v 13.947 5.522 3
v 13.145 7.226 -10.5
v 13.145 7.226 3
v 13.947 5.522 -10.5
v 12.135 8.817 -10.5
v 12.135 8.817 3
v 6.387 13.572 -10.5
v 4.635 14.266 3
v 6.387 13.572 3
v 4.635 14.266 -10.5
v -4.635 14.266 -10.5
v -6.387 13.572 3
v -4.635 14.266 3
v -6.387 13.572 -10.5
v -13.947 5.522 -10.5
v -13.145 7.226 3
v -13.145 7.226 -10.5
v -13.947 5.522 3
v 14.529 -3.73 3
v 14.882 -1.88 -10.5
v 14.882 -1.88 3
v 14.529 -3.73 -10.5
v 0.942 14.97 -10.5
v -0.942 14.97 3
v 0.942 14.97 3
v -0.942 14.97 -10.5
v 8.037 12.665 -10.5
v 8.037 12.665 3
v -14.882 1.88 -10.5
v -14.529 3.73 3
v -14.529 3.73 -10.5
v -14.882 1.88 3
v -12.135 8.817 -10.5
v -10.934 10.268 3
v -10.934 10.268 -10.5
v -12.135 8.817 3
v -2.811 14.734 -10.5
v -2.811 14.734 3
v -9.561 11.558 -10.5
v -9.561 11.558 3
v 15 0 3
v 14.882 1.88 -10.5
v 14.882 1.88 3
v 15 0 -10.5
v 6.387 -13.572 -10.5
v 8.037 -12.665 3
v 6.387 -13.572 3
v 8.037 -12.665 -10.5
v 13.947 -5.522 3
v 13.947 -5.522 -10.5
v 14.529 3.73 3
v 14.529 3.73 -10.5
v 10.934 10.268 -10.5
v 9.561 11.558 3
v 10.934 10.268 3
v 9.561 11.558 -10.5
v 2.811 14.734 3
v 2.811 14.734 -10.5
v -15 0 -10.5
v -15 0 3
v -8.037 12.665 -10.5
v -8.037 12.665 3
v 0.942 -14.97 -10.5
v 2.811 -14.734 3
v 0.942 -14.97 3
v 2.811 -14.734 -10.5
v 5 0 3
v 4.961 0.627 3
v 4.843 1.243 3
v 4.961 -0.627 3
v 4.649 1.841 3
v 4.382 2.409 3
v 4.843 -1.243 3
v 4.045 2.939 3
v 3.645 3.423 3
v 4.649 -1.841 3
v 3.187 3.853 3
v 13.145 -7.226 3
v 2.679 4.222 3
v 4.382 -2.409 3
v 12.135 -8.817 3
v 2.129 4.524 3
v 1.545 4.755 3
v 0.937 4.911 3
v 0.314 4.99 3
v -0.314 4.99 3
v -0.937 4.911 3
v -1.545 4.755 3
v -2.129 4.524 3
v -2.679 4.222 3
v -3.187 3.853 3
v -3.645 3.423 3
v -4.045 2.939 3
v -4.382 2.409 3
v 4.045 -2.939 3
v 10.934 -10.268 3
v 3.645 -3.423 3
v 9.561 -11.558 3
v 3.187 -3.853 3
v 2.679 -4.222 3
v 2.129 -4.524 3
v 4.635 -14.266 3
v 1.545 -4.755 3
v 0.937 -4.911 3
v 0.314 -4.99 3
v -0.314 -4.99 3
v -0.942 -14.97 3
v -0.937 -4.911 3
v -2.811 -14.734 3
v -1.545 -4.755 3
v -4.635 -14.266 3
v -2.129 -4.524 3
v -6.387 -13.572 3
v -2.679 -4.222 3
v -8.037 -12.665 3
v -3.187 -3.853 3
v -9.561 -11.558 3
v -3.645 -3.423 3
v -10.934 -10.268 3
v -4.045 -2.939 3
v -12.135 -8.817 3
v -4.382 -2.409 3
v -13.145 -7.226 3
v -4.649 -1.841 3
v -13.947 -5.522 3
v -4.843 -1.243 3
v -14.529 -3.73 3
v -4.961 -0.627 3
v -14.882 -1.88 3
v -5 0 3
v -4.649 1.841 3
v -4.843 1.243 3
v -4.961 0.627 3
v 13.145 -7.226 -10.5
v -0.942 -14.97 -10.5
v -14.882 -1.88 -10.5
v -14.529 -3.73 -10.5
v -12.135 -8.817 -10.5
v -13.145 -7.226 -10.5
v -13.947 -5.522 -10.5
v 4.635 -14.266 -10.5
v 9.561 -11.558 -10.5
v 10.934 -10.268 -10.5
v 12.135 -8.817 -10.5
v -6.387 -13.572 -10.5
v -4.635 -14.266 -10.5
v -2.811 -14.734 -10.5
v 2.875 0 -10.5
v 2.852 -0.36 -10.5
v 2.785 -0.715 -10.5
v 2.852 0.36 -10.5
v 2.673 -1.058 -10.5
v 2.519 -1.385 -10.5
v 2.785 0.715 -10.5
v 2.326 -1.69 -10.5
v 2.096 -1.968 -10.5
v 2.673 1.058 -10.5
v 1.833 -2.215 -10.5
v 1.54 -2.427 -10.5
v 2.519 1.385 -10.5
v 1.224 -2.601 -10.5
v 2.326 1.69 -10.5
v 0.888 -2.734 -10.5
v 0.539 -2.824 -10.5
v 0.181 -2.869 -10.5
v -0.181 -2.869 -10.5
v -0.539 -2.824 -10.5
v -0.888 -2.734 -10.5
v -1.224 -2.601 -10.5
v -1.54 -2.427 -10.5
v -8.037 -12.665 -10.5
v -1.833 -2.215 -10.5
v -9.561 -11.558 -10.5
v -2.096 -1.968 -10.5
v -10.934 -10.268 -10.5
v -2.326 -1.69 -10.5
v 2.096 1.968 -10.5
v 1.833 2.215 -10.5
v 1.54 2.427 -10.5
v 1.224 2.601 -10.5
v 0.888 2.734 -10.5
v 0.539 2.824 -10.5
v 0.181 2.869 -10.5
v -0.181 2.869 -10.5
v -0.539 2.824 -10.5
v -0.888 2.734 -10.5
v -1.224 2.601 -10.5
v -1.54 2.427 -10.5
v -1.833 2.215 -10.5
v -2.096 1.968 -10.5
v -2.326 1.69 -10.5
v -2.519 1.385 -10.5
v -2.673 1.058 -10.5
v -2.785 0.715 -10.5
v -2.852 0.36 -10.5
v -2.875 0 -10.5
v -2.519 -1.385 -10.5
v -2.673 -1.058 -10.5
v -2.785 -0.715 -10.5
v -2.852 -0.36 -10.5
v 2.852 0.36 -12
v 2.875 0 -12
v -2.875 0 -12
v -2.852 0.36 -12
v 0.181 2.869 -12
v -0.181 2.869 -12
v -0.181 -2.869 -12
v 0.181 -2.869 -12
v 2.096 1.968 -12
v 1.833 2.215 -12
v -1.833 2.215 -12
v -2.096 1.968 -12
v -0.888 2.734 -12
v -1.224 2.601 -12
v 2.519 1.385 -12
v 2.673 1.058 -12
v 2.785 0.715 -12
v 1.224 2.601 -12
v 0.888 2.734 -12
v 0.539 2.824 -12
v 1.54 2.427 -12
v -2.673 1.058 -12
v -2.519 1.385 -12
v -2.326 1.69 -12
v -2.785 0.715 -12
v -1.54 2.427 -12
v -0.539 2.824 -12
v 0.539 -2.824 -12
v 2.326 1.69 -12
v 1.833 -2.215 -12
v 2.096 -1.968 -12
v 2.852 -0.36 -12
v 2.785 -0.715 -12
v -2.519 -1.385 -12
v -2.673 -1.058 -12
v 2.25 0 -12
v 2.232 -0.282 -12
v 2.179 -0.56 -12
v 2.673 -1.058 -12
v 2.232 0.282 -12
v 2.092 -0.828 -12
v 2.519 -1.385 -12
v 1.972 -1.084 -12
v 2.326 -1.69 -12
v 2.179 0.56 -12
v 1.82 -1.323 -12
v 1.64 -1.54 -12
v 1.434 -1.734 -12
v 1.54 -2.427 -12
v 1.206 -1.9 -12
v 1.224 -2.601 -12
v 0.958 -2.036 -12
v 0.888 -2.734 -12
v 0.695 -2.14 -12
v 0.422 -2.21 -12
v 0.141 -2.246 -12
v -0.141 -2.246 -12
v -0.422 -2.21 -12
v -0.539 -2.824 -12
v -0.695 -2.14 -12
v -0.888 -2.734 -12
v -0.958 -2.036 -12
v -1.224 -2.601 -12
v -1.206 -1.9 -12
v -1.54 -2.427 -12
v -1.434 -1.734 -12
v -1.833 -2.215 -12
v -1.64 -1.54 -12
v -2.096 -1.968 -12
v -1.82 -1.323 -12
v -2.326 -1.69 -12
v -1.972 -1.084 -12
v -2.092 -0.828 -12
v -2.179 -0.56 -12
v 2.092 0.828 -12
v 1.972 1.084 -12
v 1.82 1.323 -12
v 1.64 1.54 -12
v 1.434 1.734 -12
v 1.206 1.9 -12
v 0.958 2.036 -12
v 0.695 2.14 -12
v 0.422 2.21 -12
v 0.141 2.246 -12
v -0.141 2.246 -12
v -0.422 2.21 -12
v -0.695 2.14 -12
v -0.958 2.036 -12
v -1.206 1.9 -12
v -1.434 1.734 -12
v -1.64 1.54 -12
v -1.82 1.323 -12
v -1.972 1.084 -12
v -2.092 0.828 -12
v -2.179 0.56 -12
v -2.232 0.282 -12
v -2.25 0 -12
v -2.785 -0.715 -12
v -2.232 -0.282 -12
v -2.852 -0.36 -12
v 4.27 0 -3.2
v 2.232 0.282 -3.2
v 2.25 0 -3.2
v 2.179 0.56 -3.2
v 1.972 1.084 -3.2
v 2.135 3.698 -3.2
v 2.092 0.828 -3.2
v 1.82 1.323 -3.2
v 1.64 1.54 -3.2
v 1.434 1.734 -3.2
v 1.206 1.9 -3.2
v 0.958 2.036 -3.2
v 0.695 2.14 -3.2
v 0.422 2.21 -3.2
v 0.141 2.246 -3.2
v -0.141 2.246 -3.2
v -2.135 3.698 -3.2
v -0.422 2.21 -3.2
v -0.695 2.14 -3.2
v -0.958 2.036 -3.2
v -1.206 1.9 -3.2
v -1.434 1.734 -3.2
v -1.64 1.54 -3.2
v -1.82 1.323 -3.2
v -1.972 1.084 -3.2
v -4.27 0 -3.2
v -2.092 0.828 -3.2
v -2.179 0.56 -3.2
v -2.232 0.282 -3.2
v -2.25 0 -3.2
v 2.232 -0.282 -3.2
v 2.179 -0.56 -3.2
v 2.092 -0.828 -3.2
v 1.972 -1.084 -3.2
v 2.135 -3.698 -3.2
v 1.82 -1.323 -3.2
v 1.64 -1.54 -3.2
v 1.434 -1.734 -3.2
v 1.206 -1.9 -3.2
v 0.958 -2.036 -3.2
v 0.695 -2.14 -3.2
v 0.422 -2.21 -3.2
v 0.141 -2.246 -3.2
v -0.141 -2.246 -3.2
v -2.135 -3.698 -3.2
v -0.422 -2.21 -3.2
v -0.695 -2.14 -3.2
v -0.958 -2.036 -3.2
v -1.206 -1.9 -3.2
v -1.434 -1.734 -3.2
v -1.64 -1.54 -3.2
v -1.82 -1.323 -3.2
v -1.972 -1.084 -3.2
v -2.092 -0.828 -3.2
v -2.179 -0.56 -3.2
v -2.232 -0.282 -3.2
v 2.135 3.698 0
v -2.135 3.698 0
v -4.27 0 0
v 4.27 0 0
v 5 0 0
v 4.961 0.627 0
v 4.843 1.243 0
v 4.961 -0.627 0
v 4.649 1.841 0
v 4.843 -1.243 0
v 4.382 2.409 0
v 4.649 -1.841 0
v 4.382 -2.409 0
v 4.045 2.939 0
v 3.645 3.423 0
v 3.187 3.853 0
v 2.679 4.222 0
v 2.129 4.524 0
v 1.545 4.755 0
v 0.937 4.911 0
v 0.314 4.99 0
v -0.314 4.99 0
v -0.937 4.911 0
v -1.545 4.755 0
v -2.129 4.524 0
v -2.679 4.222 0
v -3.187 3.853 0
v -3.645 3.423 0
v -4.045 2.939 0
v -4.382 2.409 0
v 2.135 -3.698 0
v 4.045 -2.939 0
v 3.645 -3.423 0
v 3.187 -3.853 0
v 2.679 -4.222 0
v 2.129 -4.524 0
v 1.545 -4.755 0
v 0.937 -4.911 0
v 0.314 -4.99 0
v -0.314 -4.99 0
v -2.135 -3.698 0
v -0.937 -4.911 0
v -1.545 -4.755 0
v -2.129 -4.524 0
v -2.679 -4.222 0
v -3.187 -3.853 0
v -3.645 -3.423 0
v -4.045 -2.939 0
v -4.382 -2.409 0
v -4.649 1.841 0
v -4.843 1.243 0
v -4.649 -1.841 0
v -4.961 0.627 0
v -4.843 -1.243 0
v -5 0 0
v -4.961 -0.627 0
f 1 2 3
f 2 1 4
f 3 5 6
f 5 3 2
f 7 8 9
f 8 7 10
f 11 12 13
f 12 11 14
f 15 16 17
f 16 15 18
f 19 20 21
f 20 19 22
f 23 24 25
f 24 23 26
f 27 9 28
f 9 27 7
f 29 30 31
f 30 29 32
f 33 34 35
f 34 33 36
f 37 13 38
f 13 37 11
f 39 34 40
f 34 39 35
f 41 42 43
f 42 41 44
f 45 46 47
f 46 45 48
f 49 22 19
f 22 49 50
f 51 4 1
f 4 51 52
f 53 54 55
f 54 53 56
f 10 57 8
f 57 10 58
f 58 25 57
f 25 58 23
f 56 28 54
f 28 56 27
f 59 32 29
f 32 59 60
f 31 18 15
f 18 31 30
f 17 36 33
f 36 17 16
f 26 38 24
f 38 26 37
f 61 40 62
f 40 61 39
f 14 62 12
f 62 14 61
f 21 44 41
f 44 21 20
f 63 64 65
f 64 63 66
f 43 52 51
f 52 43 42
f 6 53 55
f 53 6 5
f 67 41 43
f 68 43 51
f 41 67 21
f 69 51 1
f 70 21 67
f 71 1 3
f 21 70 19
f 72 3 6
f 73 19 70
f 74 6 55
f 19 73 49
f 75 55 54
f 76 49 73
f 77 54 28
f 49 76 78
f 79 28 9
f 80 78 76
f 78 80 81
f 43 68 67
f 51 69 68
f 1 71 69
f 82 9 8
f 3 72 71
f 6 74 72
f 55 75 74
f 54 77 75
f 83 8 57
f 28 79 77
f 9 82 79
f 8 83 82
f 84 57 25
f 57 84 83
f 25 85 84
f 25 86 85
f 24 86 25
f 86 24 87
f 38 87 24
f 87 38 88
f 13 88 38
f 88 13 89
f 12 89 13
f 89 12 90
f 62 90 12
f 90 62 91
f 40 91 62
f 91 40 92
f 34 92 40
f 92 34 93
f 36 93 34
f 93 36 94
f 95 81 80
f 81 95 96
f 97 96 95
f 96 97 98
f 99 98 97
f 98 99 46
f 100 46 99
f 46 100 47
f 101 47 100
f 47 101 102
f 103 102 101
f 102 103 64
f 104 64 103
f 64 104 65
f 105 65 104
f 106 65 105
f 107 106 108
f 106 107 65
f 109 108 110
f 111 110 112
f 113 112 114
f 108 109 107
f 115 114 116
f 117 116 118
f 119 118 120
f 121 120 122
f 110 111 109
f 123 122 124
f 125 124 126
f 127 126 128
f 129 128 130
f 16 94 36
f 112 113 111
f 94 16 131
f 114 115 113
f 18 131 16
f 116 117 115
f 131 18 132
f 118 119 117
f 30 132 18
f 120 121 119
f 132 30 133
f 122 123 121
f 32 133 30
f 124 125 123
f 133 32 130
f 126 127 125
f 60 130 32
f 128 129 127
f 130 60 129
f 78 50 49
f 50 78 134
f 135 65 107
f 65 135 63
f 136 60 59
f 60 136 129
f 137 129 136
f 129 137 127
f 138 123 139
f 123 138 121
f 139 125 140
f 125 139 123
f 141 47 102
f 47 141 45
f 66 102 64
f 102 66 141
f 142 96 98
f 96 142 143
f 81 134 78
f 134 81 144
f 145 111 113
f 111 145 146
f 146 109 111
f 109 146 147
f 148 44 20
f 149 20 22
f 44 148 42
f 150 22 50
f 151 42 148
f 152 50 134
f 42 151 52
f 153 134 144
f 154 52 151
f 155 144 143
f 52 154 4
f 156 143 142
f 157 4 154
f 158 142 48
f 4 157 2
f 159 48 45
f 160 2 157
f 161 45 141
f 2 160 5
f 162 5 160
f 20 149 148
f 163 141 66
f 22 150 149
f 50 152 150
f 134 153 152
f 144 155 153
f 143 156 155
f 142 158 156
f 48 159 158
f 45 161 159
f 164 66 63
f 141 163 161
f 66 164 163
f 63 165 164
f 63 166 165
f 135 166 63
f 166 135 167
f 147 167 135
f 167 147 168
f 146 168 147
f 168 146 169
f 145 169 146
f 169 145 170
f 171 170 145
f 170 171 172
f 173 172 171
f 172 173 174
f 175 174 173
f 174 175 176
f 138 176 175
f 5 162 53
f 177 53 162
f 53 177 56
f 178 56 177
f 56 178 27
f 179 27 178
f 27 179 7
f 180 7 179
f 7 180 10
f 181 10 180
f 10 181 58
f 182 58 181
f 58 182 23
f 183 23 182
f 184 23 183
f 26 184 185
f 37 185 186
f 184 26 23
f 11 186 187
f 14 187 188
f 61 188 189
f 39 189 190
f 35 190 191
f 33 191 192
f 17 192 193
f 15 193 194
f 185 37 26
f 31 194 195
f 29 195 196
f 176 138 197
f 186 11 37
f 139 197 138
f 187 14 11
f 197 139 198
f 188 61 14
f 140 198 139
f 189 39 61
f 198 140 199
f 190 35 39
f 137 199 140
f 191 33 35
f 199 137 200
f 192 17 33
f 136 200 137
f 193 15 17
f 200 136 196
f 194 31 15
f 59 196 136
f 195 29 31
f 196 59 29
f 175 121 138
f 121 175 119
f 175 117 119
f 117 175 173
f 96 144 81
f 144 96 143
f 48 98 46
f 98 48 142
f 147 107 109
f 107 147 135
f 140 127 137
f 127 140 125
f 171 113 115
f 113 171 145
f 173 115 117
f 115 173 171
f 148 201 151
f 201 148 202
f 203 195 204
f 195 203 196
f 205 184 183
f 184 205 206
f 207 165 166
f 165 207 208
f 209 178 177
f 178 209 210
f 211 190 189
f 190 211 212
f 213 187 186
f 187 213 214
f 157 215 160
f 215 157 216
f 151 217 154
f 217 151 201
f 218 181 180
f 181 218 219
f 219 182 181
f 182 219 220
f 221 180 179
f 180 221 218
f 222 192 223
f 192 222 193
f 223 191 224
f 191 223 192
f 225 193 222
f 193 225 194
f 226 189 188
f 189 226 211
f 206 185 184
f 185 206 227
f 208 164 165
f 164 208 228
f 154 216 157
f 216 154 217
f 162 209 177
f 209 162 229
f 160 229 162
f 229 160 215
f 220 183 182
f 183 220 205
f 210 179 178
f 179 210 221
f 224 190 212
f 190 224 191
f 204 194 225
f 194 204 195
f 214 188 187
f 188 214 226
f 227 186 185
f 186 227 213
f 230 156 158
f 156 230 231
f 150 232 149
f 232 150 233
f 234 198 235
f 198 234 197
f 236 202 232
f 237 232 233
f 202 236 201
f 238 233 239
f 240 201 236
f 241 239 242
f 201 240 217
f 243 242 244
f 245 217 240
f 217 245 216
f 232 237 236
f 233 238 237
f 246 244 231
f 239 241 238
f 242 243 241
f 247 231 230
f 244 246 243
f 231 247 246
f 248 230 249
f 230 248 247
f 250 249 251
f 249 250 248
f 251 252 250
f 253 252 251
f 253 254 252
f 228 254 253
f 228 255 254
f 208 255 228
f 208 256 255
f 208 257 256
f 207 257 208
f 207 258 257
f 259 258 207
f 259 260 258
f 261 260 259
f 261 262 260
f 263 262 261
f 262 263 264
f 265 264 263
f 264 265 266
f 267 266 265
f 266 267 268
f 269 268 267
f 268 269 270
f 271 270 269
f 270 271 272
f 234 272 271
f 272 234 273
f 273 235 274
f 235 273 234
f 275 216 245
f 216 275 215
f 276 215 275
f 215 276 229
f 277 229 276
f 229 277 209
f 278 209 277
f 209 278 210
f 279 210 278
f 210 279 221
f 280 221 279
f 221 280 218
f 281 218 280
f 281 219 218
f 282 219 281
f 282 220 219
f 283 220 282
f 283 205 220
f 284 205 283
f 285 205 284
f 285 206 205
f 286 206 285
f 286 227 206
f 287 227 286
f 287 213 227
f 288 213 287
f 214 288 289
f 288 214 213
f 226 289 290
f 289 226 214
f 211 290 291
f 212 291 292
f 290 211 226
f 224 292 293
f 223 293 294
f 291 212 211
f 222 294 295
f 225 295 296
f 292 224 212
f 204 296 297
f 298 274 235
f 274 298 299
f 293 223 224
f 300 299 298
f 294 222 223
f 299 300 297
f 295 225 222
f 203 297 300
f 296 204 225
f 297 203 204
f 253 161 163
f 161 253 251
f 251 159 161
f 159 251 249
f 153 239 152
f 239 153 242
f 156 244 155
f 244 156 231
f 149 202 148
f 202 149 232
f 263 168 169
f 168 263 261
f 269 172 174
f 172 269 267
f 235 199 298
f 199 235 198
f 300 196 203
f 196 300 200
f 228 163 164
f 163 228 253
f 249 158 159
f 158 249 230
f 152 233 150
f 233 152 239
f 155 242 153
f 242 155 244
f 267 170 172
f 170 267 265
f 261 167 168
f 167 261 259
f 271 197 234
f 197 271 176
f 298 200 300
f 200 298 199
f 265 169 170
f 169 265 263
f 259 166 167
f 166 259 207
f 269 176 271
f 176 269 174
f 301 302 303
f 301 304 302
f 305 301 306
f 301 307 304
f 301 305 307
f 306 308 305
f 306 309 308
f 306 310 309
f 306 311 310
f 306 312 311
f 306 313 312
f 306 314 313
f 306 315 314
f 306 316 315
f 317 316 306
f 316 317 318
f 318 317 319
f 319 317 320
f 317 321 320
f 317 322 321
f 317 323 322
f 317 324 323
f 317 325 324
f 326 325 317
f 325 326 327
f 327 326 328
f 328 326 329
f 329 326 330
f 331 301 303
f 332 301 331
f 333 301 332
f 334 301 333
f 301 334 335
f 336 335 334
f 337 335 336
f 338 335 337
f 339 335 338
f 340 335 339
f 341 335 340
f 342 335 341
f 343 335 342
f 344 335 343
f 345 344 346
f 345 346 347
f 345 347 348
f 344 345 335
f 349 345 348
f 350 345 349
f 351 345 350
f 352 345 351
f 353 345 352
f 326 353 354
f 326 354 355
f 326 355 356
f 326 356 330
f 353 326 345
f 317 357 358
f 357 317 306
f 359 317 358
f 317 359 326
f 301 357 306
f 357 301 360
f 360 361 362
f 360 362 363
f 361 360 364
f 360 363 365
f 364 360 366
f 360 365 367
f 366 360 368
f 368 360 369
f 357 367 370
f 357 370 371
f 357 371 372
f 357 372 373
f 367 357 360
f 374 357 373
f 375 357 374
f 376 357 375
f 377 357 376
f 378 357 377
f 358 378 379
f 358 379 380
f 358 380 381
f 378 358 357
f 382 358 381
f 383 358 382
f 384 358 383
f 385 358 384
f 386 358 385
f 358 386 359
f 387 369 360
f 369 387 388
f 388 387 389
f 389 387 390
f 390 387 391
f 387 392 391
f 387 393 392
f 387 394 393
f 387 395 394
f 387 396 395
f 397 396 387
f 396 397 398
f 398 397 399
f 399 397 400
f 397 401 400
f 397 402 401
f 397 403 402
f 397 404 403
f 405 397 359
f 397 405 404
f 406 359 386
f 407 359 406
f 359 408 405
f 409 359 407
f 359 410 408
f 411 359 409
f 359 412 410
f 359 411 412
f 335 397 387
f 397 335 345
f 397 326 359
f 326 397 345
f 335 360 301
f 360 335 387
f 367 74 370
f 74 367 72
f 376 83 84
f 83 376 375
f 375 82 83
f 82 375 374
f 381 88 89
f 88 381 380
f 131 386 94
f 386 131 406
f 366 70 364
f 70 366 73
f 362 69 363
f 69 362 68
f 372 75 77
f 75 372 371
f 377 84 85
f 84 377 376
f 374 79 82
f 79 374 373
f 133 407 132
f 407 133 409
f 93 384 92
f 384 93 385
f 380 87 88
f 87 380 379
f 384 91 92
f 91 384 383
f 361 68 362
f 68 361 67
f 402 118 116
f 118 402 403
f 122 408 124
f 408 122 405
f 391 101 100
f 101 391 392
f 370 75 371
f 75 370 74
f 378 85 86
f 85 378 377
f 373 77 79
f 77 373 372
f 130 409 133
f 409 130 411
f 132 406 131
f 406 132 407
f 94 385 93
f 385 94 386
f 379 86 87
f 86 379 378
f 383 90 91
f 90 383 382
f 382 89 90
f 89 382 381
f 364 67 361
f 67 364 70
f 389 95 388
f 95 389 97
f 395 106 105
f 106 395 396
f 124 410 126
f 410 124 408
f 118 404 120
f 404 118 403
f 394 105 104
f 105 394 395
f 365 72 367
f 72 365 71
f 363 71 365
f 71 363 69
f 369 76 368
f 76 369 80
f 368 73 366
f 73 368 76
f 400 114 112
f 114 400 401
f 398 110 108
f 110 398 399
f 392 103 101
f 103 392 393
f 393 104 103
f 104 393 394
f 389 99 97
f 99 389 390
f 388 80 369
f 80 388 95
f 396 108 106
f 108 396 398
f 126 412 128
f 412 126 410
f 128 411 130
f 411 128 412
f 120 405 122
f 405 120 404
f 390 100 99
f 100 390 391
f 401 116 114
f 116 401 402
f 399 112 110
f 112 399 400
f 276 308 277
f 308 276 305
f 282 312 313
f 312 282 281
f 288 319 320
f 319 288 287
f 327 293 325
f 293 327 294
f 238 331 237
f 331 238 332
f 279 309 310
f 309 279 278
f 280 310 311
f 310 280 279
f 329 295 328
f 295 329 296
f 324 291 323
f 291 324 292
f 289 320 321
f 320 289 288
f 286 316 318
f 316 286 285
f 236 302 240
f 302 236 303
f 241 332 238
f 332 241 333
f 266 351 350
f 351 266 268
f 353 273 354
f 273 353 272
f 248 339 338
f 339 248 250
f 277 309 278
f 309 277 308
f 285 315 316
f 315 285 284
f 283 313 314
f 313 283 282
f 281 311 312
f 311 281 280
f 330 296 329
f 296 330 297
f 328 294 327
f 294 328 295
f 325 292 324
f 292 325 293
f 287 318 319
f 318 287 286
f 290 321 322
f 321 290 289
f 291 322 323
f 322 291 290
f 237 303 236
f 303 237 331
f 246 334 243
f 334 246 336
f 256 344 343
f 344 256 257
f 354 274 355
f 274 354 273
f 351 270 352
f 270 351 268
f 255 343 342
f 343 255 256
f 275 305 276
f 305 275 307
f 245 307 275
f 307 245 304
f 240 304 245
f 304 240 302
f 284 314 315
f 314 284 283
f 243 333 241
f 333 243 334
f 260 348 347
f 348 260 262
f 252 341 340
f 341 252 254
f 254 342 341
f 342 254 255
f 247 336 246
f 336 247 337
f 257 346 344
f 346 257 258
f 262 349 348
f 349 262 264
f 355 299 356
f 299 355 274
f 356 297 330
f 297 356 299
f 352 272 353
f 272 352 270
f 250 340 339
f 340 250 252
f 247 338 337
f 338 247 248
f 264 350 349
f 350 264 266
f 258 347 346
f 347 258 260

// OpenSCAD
$fn = 50;

difference() {
	union() {
		translate(v = [0, 0, -10.5]) {
			cylinder(h = 13.5, r = 15.0);
		}
		#translate(v = [0, 0, -12.0]) {
			cylinder(h = 12, r = 2.875);
		}
	}
	union() {
		translate(v = [0, 0, 0]) {
			rotate(a = [0, 0, 0]) {
				difference() {
					union() {
						translate(v = [0, 0, -3.2]) {
							linear_extrude(height = 3.2) {
								polygon(points = [[4.2698, 0.0], [2.1349000000000005, 3.697755269078796], [-2.134899999999999, 3.6977552690787965], [-4.2698, 5.228996902999369e-16], [-2.134900000000002, -3.6977552690787956], [2.1348999999999974, -3.697755269078798]]);
							}
						}
					}
					union();
				}
			}
		}
		#cylinder(h = 3, r = 5.0);
		#translate(v = [0, 0, -100.0]) {
			cylinder(h = 200, r = 2.25);
		}
	}
}
